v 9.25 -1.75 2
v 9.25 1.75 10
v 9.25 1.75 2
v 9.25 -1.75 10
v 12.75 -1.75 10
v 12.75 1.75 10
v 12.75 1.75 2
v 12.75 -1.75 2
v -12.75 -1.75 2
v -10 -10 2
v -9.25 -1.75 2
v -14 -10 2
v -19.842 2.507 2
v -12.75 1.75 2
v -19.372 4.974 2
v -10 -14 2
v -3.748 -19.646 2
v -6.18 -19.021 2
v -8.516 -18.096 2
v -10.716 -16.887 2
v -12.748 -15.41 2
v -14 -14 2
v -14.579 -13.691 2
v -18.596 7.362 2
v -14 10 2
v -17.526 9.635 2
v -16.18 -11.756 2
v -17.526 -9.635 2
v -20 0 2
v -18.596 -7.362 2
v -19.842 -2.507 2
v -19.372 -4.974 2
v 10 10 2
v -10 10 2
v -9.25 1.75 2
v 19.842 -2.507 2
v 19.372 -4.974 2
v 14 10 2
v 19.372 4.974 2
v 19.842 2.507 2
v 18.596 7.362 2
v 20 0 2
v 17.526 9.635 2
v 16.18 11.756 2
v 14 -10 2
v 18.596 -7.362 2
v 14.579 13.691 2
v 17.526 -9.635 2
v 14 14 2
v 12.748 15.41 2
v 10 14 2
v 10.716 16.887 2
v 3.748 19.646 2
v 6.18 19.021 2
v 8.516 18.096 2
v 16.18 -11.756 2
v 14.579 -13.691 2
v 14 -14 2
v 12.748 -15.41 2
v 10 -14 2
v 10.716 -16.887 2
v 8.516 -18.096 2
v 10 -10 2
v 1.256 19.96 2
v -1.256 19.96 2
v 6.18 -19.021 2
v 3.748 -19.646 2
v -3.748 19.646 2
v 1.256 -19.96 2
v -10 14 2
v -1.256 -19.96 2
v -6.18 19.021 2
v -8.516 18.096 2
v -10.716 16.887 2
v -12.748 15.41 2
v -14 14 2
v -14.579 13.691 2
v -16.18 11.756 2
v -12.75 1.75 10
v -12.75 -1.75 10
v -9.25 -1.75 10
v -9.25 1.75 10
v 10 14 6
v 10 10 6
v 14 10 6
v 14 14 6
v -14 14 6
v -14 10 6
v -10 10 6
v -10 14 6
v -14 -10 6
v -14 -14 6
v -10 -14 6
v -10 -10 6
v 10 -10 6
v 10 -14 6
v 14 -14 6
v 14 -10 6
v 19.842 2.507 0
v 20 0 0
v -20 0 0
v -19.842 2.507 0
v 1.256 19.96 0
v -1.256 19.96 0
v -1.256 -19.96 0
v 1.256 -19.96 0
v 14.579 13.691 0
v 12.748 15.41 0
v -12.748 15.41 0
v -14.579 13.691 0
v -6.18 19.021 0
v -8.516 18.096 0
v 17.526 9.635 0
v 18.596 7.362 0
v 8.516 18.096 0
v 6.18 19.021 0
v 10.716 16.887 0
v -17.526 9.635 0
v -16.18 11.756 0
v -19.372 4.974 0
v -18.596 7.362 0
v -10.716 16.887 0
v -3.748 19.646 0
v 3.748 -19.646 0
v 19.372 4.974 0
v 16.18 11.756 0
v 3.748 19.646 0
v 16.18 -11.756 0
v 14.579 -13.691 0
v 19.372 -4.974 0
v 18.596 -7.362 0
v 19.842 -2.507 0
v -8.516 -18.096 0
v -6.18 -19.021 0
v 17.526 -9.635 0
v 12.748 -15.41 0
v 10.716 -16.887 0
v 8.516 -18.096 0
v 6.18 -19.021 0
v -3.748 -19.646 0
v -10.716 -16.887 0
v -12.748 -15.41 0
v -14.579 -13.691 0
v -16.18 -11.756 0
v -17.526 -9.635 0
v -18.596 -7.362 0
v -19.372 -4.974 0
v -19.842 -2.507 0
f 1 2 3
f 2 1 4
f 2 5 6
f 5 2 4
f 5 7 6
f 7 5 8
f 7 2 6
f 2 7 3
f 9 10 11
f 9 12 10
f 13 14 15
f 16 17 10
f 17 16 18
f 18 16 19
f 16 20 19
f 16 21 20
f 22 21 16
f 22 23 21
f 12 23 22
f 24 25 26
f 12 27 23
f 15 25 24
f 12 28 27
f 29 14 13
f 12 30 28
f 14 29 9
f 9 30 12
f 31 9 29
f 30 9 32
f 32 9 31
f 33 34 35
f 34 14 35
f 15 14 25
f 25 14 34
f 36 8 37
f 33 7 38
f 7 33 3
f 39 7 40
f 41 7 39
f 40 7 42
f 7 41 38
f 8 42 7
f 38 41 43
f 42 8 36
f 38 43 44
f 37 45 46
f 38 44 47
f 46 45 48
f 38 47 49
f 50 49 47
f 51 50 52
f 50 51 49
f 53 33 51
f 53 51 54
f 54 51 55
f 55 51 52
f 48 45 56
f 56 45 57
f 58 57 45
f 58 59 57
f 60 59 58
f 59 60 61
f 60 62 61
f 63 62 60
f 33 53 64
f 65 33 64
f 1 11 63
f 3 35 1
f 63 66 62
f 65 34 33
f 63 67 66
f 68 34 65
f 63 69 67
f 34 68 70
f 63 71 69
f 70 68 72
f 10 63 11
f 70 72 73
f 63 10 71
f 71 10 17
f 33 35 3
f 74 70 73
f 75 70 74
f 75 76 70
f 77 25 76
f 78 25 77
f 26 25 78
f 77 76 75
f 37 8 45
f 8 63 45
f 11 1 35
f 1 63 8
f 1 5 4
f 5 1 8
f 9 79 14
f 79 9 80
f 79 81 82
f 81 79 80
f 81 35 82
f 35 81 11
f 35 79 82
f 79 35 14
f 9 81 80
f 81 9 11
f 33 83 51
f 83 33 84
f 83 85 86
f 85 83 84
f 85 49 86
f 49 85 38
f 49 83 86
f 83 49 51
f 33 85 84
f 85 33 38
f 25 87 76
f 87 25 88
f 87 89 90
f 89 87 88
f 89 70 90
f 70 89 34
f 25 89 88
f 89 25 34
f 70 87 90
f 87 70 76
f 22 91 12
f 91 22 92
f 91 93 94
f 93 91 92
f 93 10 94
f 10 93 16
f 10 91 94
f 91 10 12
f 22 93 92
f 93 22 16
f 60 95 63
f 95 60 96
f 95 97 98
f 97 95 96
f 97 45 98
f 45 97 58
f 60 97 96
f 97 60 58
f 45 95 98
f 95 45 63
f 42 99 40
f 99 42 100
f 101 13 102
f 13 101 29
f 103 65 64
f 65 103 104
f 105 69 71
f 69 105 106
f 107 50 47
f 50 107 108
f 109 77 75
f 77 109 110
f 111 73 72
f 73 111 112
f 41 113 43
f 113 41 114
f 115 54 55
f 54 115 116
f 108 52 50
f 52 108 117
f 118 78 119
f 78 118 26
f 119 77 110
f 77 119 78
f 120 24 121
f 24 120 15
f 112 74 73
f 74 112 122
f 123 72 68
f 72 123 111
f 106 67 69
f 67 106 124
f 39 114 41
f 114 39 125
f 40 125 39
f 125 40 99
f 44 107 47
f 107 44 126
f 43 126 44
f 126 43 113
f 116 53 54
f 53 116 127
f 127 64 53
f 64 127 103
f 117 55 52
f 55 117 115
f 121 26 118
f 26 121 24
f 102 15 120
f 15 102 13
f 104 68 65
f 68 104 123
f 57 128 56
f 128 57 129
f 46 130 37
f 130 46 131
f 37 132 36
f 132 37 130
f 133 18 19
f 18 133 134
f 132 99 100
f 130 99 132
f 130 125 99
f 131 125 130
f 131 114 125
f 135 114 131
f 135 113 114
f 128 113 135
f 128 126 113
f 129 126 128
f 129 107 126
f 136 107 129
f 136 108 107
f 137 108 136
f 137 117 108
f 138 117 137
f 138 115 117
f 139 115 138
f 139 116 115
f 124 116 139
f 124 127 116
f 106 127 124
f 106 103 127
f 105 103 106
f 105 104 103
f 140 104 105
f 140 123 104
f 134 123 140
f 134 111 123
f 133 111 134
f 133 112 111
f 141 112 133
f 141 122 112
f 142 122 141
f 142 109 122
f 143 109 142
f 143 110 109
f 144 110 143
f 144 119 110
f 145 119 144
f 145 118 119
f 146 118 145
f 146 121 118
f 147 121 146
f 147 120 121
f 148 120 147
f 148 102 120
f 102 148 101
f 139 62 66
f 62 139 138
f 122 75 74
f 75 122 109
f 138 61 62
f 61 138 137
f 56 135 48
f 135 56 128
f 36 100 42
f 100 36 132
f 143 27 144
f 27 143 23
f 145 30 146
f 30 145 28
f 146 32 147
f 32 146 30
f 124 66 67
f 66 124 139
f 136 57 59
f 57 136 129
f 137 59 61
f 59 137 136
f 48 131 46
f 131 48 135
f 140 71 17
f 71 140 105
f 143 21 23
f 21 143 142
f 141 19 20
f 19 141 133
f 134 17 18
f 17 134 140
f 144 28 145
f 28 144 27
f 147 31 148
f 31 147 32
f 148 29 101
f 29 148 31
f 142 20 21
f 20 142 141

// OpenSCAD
cylinder(2, 20, 20, $fn = 50);

translate([0, 0, 6]) {
    translate([11, 0, 0]) {
        cube([3.5, 3.5, 8], center = true); 
    }
    translate([-11, 0, 0]) {
        cube([3.5, 3.5, 8], center = true); 
    }
}

translate([0, 0, 4]) {    
    translate([12, 12, 0]) {
        cube([4, 4, 4], center = true); 
    }
    
    translate([-12, 12, 0]) {
        cube([4, 4, 4], center = true); 
    }
    
    translate([-12, -12, 0]) {
        cube([4, 4, 4], center = true); 
    }
    
    translate([12, -12, 0]) {
        cube([4, 4, 4], center = true); 
    }
}
